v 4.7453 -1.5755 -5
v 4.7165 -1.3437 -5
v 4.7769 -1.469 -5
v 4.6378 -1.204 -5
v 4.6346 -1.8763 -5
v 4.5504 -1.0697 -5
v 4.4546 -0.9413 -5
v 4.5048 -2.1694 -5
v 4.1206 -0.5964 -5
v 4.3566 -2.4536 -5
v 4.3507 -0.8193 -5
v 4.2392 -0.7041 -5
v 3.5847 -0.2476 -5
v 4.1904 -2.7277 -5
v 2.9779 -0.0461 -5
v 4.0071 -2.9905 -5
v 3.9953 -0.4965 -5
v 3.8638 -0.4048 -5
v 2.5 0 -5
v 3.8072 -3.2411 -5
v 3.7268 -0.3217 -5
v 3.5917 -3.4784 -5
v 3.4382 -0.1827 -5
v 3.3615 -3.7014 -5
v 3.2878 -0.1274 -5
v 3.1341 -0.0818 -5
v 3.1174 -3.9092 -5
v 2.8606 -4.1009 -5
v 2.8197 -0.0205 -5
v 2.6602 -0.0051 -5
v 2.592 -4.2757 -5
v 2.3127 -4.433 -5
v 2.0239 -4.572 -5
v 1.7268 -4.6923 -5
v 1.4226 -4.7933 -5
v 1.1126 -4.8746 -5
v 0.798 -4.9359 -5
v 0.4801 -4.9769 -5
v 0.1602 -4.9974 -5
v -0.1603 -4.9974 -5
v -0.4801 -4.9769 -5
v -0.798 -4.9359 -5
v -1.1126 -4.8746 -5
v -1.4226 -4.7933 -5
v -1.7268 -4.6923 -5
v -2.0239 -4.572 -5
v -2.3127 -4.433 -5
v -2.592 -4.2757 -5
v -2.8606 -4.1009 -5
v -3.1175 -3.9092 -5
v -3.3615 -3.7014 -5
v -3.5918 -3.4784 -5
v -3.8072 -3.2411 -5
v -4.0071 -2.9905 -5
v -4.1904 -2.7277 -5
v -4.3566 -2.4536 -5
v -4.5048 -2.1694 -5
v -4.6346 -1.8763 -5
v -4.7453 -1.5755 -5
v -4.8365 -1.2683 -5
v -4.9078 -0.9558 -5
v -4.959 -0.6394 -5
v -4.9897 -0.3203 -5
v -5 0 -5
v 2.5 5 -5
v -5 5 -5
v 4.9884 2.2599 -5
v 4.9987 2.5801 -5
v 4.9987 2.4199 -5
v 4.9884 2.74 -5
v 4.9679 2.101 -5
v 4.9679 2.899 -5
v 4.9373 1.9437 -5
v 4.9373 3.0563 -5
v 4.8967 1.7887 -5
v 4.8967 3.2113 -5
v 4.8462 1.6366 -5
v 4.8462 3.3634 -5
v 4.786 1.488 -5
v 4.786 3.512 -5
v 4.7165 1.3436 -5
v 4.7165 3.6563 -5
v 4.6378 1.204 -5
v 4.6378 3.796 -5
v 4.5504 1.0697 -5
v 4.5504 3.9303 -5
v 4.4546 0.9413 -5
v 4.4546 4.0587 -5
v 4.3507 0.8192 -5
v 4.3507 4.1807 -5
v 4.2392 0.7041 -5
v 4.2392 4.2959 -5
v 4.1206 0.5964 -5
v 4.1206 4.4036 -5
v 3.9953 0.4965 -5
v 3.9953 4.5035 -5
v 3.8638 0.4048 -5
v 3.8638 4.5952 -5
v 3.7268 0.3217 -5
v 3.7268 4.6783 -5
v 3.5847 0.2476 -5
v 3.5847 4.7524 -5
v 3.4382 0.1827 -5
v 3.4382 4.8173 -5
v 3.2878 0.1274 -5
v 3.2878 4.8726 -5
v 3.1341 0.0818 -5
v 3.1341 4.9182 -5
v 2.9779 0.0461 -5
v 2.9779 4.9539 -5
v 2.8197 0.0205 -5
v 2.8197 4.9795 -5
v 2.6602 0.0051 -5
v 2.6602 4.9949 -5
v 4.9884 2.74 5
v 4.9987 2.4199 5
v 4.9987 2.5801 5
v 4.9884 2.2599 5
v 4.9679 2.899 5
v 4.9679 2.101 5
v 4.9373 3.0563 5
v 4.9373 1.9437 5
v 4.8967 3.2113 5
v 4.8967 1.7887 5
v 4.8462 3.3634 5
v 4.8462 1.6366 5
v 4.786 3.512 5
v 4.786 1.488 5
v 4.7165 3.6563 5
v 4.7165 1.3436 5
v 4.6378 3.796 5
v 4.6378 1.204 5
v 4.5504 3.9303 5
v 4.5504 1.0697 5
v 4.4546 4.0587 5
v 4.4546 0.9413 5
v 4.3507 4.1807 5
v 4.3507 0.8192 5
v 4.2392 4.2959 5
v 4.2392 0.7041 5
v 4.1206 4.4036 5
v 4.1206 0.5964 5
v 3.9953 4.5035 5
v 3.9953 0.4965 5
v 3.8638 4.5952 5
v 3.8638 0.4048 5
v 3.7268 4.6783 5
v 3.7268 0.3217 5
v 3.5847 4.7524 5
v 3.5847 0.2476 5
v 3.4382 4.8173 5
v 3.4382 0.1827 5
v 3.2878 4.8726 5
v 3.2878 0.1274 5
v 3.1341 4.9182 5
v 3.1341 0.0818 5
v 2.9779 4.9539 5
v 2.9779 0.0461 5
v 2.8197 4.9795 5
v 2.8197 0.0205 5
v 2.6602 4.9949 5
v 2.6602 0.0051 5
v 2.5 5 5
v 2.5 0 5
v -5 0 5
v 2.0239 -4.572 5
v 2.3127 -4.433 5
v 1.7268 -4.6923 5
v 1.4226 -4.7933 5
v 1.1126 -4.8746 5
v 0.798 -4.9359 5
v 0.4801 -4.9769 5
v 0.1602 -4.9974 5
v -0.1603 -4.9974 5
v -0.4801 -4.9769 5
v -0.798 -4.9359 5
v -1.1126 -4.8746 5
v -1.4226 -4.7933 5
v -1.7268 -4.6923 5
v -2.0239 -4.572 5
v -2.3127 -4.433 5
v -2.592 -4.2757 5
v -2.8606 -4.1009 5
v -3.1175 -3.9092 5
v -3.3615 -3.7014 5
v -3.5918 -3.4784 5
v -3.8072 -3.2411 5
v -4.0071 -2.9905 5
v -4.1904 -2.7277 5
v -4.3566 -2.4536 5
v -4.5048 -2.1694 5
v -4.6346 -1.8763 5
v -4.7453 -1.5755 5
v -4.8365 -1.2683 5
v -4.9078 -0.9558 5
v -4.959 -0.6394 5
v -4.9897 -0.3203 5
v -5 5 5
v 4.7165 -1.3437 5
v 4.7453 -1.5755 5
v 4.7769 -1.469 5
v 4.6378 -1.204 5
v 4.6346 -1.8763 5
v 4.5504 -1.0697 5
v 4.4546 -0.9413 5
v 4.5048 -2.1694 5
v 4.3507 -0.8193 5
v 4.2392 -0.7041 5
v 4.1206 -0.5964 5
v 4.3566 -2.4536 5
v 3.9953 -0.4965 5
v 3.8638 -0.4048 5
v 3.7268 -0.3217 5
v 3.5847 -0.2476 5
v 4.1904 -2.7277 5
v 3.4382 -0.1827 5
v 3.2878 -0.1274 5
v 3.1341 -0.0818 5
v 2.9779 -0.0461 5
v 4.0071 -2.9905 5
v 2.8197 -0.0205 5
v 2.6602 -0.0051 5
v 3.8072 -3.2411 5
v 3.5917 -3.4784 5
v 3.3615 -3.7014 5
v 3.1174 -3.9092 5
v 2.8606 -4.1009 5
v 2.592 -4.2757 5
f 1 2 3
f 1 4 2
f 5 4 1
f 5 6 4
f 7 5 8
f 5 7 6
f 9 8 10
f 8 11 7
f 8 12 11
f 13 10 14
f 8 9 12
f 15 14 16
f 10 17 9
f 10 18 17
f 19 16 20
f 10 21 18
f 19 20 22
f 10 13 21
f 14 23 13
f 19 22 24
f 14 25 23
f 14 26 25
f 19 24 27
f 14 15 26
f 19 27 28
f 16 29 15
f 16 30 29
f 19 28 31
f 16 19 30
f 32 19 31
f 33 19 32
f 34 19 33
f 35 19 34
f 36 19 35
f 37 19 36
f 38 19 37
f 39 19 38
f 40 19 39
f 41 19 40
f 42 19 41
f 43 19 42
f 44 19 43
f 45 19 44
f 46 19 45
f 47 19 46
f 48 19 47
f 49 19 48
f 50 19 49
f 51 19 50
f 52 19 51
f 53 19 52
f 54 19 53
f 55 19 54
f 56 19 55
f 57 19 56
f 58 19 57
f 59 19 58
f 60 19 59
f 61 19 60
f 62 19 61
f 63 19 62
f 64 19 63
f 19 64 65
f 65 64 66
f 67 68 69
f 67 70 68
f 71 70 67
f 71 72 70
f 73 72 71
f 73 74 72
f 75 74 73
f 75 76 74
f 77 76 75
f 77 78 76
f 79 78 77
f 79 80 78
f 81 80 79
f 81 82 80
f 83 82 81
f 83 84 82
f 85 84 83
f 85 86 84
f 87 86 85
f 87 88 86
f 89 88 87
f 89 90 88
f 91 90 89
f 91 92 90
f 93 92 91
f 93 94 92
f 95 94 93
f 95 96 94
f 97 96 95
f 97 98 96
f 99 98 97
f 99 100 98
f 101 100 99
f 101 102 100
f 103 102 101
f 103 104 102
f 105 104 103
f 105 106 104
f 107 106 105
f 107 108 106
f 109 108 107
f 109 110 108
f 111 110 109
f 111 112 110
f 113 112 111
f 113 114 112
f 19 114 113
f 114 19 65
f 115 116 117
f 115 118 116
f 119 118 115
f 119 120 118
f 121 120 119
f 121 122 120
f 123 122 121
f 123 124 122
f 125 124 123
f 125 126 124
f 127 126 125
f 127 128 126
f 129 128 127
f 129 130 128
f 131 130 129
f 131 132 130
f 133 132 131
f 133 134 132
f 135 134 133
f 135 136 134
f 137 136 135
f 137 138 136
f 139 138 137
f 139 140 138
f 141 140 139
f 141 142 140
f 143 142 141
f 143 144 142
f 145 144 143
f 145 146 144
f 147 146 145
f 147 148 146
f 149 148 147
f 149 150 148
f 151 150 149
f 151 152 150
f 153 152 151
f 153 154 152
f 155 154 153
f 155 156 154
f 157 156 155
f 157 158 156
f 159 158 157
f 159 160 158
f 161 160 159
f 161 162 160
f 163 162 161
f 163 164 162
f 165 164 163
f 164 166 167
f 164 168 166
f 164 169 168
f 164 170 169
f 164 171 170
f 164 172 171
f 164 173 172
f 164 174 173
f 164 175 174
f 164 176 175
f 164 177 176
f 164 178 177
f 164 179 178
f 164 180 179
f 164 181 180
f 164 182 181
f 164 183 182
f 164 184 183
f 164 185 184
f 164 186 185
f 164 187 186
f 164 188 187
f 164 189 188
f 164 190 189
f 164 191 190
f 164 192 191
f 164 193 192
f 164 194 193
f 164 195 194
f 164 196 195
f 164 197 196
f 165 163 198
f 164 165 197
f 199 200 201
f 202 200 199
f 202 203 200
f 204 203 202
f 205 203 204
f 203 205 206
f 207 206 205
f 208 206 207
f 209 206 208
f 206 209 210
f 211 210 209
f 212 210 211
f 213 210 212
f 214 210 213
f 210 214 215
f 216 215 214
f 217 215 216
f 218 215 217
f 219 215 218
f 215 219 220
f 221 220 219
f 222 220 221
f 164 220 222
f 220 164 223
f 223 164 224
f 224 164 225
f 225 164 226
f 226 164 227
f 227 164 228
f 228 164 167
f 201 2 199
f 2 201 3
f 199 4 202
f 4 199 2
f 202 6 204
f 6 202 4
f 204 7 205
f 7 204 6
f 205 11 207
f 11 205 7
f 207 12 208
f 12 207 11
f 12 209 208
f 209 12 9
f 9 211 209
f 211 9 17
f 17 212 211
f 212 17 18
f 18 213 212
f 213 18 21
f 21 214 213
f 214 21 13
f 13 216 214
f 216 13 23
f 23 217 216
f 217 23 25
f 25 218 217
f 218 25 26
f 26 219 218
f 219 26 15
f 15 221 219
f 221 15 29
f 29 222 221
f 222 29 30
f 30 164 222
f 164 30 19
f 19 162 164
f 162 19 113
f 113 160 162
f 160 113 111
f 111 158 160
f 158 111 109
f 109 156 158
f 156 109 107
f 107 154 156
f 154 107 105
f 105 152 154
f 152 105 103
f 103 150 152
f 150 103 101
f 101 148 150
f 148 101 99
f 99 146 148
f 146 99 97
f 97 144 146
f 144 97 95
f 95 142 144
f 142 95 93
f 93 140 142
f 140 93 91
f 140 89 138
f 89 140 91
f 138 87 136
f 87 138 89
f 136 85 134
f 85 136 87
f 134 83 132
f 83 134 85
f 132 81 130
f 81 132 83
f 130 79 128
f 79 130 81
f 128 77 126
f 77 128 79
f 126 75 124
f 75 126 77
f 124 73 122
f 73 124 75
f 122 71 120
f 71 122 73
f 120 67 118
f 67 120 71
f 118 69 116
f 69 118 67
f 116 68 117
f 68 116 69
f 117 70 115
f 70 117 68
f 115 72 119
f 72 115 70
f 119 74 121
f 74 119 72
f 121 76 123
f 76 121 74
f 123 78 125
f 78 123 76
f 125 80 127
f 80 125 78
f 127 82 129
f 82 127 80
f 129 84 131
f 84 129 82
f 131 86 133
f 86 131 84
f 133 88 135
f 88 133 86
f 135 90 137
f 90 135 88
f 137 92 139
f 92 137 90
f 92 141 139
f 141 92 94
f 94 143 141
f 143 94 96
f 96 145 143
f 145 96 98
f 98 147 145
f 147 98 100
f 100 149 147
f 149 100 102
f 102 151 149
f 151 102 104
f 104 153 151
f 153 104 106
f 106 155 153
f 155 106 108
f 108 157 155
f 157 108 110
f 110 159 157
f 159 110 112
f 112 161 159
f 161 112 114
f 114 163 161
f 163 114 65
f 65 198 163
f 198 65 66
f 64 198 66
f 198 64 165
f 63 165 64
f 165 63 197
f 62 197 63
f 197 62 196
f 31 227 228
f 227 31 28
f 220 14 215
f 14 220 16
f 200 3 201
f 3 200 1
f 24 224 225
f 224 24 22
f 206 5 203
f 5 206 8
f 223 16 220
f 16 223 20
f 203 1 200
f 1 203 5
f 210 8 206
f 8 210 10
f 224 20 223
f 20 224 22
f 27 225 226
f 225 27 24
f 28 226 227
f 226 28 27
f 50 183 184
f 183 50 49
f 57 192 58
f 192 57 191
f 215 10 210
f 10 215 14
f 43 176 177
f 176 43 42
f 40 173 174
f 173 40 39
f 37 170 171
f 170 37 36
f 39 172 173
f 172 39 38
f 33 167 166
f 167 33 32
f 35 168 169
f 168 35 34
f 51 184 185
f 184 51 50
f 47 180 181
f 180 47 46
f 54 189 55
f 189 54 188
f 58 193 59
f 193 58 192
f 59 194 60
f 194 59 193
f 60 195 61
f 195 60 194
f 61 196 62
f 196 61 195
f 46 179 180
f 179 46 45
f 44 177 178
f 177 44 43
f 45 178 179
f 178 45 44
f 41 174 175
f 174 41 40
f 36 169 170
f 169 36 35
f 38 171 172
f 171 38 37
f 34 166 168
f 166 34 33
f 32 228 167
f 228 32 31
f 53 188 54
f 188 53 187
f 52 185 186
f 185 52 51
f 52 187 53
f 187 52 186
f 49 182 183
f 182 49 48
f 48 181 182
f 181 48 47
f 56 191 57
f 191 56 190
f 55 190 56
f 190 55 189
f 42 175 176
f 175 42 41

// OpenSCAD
// Generated by SolidPython 1.1.3 on 2025-02-20 04:03:46
$fn=50;


intersection() {
	translate(v = [-5.0000000000, -5.0000000000, -5.0000000000]) {
		linear_extrude(height = 10) {
			polygon(points = [[7.5000000000, 10.0000000000], [7.6601755500, 9.9948634819], [7.8196929042, 9.9794750346], [7.9778965718, 9.9538978925], [8.1341364598, 9.9182371576], [8.2877705451, 9.8726393675], [8.4381675122, 9.8172918934], [8.5847093478, 9.7524221698], [8.7267938800, 9.6782967603], [8.8638372530, 9.5952202622], [8.9952763262, 9.5035340547], [9.1205709883, 9.4036148959], [9.2392063765, 9.2958733752], [9.3506949927, 9.1807522257], [9.4545787062, 9.0587245046], [9.5504306365, 8.9302916503], [9.6378569075, 8.7959814208], [9.7164982659, 8.6563457256], [9.7860315575, 8.5119583578], [9.8461710551, 8.3634126361], [9.8966696326, 8.2113189666], [9.9373197805, 8.0563023349], [9.9679544585, 7.8989997376], [9.9884477824, 7.7400575648], [9.9987155405, 7.5801289439], [9.9987155405, 7.4198710561], [9.9884477824, 7.2599424352], [9.9679544585, 7.1010002624], [9.9373197805, 6.9436976651], [9.8966696326, 6.7886810334], [9.8461710551, 6.6365873639], [9.7860315575, 6.4880416422], [9.7164982659, 6.3436542744], [9.6378569075, 6.2040185792], [9.5504306365, 6.0697083497], [9.4545787062, 5.9412754954], [9.3506949927, 5.8192477743], [9.2392063765, 5.7041266248], [9.1205709883, 5.5963851041], [8.9952763262, 5.4964659453], [8.8638372530, 5.4047797378], [8.7267938800, 5.3217032397], [8.5847093478, 5.2475778302], [8.4381675122, 5.1827081066], [8.2877705451, 5.1273606325], [8.1341364598, 5.0817628424], [7.9778965718, 5.0461021075], [7.8196929042, 5.0205249654], [7.6601755500, 5.0051365181], [7.5000000000, 5.0000000000], [7.5000000000, 5.0000000000], [7.6601755500, 4.9948634819], [7.8196929042, 4.9794750346], [7.9778965718, 4.9538978925], [8.1341364598, 4.9182371576], [8.2877705451, 4.8726393675], [8.4381675122, 4.8172918934], [8.5847093478, 4.7524221698], [8.7267938800, 4.6782967603], [8.8638372530, 4.5952202622], [8.9952763262, 4.5035340547], [9.1205709883, 4.4036148959], [9.2392063765, 4.2958733752], [9.3506949927, 4.1807522257], [9.4545787062, 4.0587245046], [9.5504306365, 3.9302916503], [9.6378569075, 3.7959814208], [9.7164982659, 3.6563457256], [9.7860315575, 3.5119583578], [9.8461710551, 3.3634126361], [9.8966696326, 3.2113189666], [9.9373197805, 3.0563023349], [9.9679544585, 2.8989997376], [9.9884477824, 2.7400575648], [9.9987155405, 2.5801289439], [9.9987155405, 2.4198710561], [9.9884477824, 2.2599424352], [9.9679544585, 2.1010002624], [9.9373197805, 1.9436976651], [9.8966696326, 1.7886810334], [9.8461710551, 1.6365873639], [9.7860315575, 1.4880416422], [9.7164982659, 1.3436542744], [9.6378569075, 1.2040185792], [9.5504306365, 1.0697083497], [9.4545787062, 0.9412754954], [9.3506949927, 0.8192477743], [9.2392063765, 0.7041266248], [9.1205709883, 0.5963851041], [8.9952763262, 0.4964659453], [8.8638372530, 0.4047797378], [8.7267938800, 0.3217032397], [8.5847093478, 0.2475778302], [8.4381675122, 0.1827081066], [8.2877705451, 0.1273606325], [8.1341364598, 0.0817628424], [7.9778965718, 0.0461021075], [7.8196929042, 0.0205249654], [7.6601755500, 0.0051365181], [7.5000000000, 0.0000000000], [0, 0], [0, 10]]);
		}
	}
	rotate(a = -90, v = [0, 0, 1]) {
		translate(v = [-5.0000000000, -5.0000000000, -5.0000000000]) {
			linear_extrude(height = 10) {
				polygon(points = [[5.0000000000, 10.0000000000], [5.3203510999, 9.9897269638], [5.6393858084, 9.9589500691], [5.9557931435, 9.9077957850], [6.2682729195, 9.8364743152], [6.5755410901, 9.7452787351], [6.8763350244, 9.6345837867], [7.1694186956, 9.5048443395], [7.4535877600, 9.3565935206], [7.7276745061, 9.1904405245], [7.9905526525, 9.0070681093], [8.2411419765, 8.8072297918], [8.4784127530, 8.5917467505], [8.7013899854, 8.3615044513], [8.9091574123, 8.1174490093], [9.1008612730, 7.8605833006], [9.2757138150, 7.5919628416], [9.4329965319, 7.3126914512], [9.5720631151, 7.0239167156], [9.6923421102, 6.7268252721], [9.7933392652, 6.4226379332], [9.8746395609, 6.1126046698], [9.9359089171, 5.7979994752], [9.9768955647, 5.4801151295], [9.9974310810, 5.1602578879], [9.9974310810, 4.8397421121], [9.9768955647, 4.5198848705], [9.9359089171, 4.2020005248], [9.8746395609, 3.8873953302], [9.7933392652, 3.5773620668], [9.6923421102, 3.2731747279], [9.5720631151, 2.9760832844], [9.4329965319, 2.6873085488], [9.2757138150, 2.4080371584], [9.1008612730, 2.1394166994], [8.9091574123, 1.8825509907], [8.7013899854, 1.6384955487], [8.4784127530, 1.4082532495], [8.2411419765, 1.1927702082], [7.9905526525, 0.9929318907], [7.7276745061, 0.8095594755], [7.4535877600, 0.6434064794], [7.1694186956, 0.4951556605], [6.8763350244, 0.3654162133], [6.5755410901, 0.2547212649], [6.2682729195, 0.1635256848], [5.9557931435, 0.0922042150], [5.6393858084, 0.0410499309], [5.3203510999, 0.0102730362], [5.0000000000, 0.0000000000], [0, 0], [0, 10]]);
			}
		}
	}
}
/***********************************************
*********      SolidPython code:      **********
************************************************
 
from solid import *
from solid.utils import *

import math
import matplotlib.pyplot as plt
import subprocess
import os

class Hole:
    def __init__(self, x, y, radius):
        """
        Hole defined by:
        :param x: x dimension for center point of the circle as a ratio of letter height
        :param y: y dimension for center point of the circle as a ratio of letter height
        :param radius: radius of circle as a ratio of letter height
        """
        self.x = x
        self.y = y
        self.radius = radius

class Letter3D:
    def __init__(self, name, outer_shape_points, height, holes=None):
        """
        3D Letter defined by:
        :param name: name of letter
        :param outer_shape_points: points defining the outer shape of the letter
        :param heigh: size of cube that letter fits inside
        :param holes: list of Holes
        """
        self.name = name
        self.outer_shape_points = outer_shape_points
        self.holes = holes if holes is None else []
        self.height = height


    def generate(self):
        shape = polygon(points=self.outer_shape_points)

        if self.holes:
            for hole in self.holes:
                circle_hole = circle(r=hole.radius*self.height)
                positioned_hole = translate([hole.x*self.height, hole.y*self.height])(circle_hole)
                shape = difference()(shape, positioned_hole)
        
        shape_3d = linear_extrude(height=self.height)(shape)
        shape_3d = translate([-self.height/2, -self.height/2, -self.height/2])(shape_3d)
        return shape_3d
    
    def render(self):
        scad_render_to_file(self.shape, f"output/{self.name}.scad", file_header='$fn=50;')
        subprocess.run(["C:\\Program Files\\OpenSCAD\\openscad.exe", "-o", f"output\\{self.name}.stl", f"output\\{self.name}.scad"])


class TwoLetter3D:
    def __init__(self, height, letterA, letterA_face, letterB=None, letterB_face=None):
        self.height = height
        self.letterA = letterA
        self.letterB = letterB
        self.letterA_face = letterA_face
        self.letterB_face = letterB_face

    def call_letter_generation(self, letter):
        letter = letter.upper()
        function_name = f"letter_{letter}"
        func = globals().get(function_name)
        if func is None:
            raise ValueError(f"No letter generation function defined for letter '{letter}'.")
        else:
            print(func)
        return func(self.height)
    
    def rotate_object(self, face, shape):
        face = face.lower()
        if face == "z":
            return shape
        if face == "x":
            return rotate(a=90, v=[0,1,0])(shape)
        if face == "y":
            return rotate(a=-90, v=[0,0,1])(shape)
        else:
            raise ValueError("Face must be one of 'x', 'y', or 'z'.")

    def render(self):
        if self.letterA:
            letterA3D = self.call_letter_generation(self.letterA)
            letterA3D = self.rotate_object(self.letterA_face, letterA3D)

        if self.letterB:
            letterB3D = self.call_letter_generation(self.letterB)
            letterB3D = self.rotate_object(self.letterB_face, letterB3D)
            combined = intersection()(letterA3D, letterB3D)
            file_name = self.letterA + self.letterB
            scad_render_to_file(combined, f"output/{file_name}.scad", file_header='$fn=50;')
            subprocess.run(["C:\\Program Files\\OpenSCAD\\openscad.exe", "-o", f"output\\{file_name}.stl", f"output\\{file_name}.scad"])
            return
        else:
            file_name = self.letterA
            scad_render_to_file(letterA3D, f"output/{file_name}.scad", file_header='$fn=50;')
            subprocess.run(["C:\\Program Files\\OpenSCAD\\openscad.exe", "-o", f"output\\{file_name}.stl", f"output\\{file_name}.scad"])
    
                

def arc_points(radius, start_angle, end_angle, center=[0,0], num_points=50):
    angles = [start_angle + i * (end_angle - start_angle) / (num_points - 1)
              for i in range(num_points)]
    points = [
        (center[0] + radius * math.cos(math.radians(angle)),
         center[1] + radius * math.sin(math.radians(angle)))
        for angle in angles
    ]
    return points

def letter_A(h):
    shape_points = [(0,0), (h/2, h), (h, 0), (5/6*h, 0), (2/3*h, 1/3*h), (1/3*h, 1/3*h), (h/6, 0)]
    holes = [Hole(1/2, 7/12, 1/6)]
    A = Letter3D("A", shape_points, h, holes)
    return A.generate()

def letter_B(h):
    top_arc_points = arc_points(h/4, 90, -90, center=[3/4*h, 3/4*h])
    bottom_arc_points = arc_points(h/4, 90, -90, center=[3/4*h, h/4])
    other_points = [(0,0),(0,h)]

    shape_points = top_arc_points + bottom_arc_points + other_points
    holes = [Hole(1/2, 3/4, 1/6), Hole(1/2, 1/4, 1/6)]
    B = Letter3D("B", shape_points, h, holes)
    return B.generate()

def letter_C(h):
    outer_arc_points = arc_points(h/2, 30, 330, center=[h/2,h/2])
    inner_arc_points = arc_points(h/4, 30, 330, center=[h/2,h/2])[::-1]
    shape_points = outer_arc_points + inner_arc_points
    # print(shape_points)
    C = Letter3D("C", shape_points, h)
    return C.generate()


def letter_D(h):
    outer_arc_points = arc_points(h/2, 90, -90, center= [h/2, h/2])
    shape_points = outer_arc_points + [(0,0), (0, h)]
    holes = [Hole(1/2, 1/2, 1/6)]
    D = Letter3D("D", shape_points, h, holes)
    return D.generate()

def letter_E(h):
    points = [(0,0), (h,0), (h,h/5), (h/5,h/5), (h/5,2/5*h), (3/4*h,2/5*h), (3/4*h,3/5*h), (h/5,3/5*h), (h/5,4/5*h), (h,4/5*h), (h,h), (0,h)]
    E = Letter3D("E", points, h)
    return E.generate()

def letter_F(h):
    points = [(0,0), (h/5,0), (h/5,2/5*h), (3/4*h,2/5*h), (3/4*h,3/5*h), (h/5,3/5*h), (h/5,4/5*h), (h,4/5*h), (h,h), (0,h)]
    F = Letter3D("F", points, h)
    return F.generate()

if __name__ == "__main__":
    os.makedirs("output", exist_ok=True)

    letters = [chr(x) for x in range(ord('A'), ord('F') + 1)]
    for letter in letters:
        for other_letter in letters:
            shape = TwoLetter3D(10, letter, "z", other_letter, "y")
            shape.render()
 
 
************************************************/
